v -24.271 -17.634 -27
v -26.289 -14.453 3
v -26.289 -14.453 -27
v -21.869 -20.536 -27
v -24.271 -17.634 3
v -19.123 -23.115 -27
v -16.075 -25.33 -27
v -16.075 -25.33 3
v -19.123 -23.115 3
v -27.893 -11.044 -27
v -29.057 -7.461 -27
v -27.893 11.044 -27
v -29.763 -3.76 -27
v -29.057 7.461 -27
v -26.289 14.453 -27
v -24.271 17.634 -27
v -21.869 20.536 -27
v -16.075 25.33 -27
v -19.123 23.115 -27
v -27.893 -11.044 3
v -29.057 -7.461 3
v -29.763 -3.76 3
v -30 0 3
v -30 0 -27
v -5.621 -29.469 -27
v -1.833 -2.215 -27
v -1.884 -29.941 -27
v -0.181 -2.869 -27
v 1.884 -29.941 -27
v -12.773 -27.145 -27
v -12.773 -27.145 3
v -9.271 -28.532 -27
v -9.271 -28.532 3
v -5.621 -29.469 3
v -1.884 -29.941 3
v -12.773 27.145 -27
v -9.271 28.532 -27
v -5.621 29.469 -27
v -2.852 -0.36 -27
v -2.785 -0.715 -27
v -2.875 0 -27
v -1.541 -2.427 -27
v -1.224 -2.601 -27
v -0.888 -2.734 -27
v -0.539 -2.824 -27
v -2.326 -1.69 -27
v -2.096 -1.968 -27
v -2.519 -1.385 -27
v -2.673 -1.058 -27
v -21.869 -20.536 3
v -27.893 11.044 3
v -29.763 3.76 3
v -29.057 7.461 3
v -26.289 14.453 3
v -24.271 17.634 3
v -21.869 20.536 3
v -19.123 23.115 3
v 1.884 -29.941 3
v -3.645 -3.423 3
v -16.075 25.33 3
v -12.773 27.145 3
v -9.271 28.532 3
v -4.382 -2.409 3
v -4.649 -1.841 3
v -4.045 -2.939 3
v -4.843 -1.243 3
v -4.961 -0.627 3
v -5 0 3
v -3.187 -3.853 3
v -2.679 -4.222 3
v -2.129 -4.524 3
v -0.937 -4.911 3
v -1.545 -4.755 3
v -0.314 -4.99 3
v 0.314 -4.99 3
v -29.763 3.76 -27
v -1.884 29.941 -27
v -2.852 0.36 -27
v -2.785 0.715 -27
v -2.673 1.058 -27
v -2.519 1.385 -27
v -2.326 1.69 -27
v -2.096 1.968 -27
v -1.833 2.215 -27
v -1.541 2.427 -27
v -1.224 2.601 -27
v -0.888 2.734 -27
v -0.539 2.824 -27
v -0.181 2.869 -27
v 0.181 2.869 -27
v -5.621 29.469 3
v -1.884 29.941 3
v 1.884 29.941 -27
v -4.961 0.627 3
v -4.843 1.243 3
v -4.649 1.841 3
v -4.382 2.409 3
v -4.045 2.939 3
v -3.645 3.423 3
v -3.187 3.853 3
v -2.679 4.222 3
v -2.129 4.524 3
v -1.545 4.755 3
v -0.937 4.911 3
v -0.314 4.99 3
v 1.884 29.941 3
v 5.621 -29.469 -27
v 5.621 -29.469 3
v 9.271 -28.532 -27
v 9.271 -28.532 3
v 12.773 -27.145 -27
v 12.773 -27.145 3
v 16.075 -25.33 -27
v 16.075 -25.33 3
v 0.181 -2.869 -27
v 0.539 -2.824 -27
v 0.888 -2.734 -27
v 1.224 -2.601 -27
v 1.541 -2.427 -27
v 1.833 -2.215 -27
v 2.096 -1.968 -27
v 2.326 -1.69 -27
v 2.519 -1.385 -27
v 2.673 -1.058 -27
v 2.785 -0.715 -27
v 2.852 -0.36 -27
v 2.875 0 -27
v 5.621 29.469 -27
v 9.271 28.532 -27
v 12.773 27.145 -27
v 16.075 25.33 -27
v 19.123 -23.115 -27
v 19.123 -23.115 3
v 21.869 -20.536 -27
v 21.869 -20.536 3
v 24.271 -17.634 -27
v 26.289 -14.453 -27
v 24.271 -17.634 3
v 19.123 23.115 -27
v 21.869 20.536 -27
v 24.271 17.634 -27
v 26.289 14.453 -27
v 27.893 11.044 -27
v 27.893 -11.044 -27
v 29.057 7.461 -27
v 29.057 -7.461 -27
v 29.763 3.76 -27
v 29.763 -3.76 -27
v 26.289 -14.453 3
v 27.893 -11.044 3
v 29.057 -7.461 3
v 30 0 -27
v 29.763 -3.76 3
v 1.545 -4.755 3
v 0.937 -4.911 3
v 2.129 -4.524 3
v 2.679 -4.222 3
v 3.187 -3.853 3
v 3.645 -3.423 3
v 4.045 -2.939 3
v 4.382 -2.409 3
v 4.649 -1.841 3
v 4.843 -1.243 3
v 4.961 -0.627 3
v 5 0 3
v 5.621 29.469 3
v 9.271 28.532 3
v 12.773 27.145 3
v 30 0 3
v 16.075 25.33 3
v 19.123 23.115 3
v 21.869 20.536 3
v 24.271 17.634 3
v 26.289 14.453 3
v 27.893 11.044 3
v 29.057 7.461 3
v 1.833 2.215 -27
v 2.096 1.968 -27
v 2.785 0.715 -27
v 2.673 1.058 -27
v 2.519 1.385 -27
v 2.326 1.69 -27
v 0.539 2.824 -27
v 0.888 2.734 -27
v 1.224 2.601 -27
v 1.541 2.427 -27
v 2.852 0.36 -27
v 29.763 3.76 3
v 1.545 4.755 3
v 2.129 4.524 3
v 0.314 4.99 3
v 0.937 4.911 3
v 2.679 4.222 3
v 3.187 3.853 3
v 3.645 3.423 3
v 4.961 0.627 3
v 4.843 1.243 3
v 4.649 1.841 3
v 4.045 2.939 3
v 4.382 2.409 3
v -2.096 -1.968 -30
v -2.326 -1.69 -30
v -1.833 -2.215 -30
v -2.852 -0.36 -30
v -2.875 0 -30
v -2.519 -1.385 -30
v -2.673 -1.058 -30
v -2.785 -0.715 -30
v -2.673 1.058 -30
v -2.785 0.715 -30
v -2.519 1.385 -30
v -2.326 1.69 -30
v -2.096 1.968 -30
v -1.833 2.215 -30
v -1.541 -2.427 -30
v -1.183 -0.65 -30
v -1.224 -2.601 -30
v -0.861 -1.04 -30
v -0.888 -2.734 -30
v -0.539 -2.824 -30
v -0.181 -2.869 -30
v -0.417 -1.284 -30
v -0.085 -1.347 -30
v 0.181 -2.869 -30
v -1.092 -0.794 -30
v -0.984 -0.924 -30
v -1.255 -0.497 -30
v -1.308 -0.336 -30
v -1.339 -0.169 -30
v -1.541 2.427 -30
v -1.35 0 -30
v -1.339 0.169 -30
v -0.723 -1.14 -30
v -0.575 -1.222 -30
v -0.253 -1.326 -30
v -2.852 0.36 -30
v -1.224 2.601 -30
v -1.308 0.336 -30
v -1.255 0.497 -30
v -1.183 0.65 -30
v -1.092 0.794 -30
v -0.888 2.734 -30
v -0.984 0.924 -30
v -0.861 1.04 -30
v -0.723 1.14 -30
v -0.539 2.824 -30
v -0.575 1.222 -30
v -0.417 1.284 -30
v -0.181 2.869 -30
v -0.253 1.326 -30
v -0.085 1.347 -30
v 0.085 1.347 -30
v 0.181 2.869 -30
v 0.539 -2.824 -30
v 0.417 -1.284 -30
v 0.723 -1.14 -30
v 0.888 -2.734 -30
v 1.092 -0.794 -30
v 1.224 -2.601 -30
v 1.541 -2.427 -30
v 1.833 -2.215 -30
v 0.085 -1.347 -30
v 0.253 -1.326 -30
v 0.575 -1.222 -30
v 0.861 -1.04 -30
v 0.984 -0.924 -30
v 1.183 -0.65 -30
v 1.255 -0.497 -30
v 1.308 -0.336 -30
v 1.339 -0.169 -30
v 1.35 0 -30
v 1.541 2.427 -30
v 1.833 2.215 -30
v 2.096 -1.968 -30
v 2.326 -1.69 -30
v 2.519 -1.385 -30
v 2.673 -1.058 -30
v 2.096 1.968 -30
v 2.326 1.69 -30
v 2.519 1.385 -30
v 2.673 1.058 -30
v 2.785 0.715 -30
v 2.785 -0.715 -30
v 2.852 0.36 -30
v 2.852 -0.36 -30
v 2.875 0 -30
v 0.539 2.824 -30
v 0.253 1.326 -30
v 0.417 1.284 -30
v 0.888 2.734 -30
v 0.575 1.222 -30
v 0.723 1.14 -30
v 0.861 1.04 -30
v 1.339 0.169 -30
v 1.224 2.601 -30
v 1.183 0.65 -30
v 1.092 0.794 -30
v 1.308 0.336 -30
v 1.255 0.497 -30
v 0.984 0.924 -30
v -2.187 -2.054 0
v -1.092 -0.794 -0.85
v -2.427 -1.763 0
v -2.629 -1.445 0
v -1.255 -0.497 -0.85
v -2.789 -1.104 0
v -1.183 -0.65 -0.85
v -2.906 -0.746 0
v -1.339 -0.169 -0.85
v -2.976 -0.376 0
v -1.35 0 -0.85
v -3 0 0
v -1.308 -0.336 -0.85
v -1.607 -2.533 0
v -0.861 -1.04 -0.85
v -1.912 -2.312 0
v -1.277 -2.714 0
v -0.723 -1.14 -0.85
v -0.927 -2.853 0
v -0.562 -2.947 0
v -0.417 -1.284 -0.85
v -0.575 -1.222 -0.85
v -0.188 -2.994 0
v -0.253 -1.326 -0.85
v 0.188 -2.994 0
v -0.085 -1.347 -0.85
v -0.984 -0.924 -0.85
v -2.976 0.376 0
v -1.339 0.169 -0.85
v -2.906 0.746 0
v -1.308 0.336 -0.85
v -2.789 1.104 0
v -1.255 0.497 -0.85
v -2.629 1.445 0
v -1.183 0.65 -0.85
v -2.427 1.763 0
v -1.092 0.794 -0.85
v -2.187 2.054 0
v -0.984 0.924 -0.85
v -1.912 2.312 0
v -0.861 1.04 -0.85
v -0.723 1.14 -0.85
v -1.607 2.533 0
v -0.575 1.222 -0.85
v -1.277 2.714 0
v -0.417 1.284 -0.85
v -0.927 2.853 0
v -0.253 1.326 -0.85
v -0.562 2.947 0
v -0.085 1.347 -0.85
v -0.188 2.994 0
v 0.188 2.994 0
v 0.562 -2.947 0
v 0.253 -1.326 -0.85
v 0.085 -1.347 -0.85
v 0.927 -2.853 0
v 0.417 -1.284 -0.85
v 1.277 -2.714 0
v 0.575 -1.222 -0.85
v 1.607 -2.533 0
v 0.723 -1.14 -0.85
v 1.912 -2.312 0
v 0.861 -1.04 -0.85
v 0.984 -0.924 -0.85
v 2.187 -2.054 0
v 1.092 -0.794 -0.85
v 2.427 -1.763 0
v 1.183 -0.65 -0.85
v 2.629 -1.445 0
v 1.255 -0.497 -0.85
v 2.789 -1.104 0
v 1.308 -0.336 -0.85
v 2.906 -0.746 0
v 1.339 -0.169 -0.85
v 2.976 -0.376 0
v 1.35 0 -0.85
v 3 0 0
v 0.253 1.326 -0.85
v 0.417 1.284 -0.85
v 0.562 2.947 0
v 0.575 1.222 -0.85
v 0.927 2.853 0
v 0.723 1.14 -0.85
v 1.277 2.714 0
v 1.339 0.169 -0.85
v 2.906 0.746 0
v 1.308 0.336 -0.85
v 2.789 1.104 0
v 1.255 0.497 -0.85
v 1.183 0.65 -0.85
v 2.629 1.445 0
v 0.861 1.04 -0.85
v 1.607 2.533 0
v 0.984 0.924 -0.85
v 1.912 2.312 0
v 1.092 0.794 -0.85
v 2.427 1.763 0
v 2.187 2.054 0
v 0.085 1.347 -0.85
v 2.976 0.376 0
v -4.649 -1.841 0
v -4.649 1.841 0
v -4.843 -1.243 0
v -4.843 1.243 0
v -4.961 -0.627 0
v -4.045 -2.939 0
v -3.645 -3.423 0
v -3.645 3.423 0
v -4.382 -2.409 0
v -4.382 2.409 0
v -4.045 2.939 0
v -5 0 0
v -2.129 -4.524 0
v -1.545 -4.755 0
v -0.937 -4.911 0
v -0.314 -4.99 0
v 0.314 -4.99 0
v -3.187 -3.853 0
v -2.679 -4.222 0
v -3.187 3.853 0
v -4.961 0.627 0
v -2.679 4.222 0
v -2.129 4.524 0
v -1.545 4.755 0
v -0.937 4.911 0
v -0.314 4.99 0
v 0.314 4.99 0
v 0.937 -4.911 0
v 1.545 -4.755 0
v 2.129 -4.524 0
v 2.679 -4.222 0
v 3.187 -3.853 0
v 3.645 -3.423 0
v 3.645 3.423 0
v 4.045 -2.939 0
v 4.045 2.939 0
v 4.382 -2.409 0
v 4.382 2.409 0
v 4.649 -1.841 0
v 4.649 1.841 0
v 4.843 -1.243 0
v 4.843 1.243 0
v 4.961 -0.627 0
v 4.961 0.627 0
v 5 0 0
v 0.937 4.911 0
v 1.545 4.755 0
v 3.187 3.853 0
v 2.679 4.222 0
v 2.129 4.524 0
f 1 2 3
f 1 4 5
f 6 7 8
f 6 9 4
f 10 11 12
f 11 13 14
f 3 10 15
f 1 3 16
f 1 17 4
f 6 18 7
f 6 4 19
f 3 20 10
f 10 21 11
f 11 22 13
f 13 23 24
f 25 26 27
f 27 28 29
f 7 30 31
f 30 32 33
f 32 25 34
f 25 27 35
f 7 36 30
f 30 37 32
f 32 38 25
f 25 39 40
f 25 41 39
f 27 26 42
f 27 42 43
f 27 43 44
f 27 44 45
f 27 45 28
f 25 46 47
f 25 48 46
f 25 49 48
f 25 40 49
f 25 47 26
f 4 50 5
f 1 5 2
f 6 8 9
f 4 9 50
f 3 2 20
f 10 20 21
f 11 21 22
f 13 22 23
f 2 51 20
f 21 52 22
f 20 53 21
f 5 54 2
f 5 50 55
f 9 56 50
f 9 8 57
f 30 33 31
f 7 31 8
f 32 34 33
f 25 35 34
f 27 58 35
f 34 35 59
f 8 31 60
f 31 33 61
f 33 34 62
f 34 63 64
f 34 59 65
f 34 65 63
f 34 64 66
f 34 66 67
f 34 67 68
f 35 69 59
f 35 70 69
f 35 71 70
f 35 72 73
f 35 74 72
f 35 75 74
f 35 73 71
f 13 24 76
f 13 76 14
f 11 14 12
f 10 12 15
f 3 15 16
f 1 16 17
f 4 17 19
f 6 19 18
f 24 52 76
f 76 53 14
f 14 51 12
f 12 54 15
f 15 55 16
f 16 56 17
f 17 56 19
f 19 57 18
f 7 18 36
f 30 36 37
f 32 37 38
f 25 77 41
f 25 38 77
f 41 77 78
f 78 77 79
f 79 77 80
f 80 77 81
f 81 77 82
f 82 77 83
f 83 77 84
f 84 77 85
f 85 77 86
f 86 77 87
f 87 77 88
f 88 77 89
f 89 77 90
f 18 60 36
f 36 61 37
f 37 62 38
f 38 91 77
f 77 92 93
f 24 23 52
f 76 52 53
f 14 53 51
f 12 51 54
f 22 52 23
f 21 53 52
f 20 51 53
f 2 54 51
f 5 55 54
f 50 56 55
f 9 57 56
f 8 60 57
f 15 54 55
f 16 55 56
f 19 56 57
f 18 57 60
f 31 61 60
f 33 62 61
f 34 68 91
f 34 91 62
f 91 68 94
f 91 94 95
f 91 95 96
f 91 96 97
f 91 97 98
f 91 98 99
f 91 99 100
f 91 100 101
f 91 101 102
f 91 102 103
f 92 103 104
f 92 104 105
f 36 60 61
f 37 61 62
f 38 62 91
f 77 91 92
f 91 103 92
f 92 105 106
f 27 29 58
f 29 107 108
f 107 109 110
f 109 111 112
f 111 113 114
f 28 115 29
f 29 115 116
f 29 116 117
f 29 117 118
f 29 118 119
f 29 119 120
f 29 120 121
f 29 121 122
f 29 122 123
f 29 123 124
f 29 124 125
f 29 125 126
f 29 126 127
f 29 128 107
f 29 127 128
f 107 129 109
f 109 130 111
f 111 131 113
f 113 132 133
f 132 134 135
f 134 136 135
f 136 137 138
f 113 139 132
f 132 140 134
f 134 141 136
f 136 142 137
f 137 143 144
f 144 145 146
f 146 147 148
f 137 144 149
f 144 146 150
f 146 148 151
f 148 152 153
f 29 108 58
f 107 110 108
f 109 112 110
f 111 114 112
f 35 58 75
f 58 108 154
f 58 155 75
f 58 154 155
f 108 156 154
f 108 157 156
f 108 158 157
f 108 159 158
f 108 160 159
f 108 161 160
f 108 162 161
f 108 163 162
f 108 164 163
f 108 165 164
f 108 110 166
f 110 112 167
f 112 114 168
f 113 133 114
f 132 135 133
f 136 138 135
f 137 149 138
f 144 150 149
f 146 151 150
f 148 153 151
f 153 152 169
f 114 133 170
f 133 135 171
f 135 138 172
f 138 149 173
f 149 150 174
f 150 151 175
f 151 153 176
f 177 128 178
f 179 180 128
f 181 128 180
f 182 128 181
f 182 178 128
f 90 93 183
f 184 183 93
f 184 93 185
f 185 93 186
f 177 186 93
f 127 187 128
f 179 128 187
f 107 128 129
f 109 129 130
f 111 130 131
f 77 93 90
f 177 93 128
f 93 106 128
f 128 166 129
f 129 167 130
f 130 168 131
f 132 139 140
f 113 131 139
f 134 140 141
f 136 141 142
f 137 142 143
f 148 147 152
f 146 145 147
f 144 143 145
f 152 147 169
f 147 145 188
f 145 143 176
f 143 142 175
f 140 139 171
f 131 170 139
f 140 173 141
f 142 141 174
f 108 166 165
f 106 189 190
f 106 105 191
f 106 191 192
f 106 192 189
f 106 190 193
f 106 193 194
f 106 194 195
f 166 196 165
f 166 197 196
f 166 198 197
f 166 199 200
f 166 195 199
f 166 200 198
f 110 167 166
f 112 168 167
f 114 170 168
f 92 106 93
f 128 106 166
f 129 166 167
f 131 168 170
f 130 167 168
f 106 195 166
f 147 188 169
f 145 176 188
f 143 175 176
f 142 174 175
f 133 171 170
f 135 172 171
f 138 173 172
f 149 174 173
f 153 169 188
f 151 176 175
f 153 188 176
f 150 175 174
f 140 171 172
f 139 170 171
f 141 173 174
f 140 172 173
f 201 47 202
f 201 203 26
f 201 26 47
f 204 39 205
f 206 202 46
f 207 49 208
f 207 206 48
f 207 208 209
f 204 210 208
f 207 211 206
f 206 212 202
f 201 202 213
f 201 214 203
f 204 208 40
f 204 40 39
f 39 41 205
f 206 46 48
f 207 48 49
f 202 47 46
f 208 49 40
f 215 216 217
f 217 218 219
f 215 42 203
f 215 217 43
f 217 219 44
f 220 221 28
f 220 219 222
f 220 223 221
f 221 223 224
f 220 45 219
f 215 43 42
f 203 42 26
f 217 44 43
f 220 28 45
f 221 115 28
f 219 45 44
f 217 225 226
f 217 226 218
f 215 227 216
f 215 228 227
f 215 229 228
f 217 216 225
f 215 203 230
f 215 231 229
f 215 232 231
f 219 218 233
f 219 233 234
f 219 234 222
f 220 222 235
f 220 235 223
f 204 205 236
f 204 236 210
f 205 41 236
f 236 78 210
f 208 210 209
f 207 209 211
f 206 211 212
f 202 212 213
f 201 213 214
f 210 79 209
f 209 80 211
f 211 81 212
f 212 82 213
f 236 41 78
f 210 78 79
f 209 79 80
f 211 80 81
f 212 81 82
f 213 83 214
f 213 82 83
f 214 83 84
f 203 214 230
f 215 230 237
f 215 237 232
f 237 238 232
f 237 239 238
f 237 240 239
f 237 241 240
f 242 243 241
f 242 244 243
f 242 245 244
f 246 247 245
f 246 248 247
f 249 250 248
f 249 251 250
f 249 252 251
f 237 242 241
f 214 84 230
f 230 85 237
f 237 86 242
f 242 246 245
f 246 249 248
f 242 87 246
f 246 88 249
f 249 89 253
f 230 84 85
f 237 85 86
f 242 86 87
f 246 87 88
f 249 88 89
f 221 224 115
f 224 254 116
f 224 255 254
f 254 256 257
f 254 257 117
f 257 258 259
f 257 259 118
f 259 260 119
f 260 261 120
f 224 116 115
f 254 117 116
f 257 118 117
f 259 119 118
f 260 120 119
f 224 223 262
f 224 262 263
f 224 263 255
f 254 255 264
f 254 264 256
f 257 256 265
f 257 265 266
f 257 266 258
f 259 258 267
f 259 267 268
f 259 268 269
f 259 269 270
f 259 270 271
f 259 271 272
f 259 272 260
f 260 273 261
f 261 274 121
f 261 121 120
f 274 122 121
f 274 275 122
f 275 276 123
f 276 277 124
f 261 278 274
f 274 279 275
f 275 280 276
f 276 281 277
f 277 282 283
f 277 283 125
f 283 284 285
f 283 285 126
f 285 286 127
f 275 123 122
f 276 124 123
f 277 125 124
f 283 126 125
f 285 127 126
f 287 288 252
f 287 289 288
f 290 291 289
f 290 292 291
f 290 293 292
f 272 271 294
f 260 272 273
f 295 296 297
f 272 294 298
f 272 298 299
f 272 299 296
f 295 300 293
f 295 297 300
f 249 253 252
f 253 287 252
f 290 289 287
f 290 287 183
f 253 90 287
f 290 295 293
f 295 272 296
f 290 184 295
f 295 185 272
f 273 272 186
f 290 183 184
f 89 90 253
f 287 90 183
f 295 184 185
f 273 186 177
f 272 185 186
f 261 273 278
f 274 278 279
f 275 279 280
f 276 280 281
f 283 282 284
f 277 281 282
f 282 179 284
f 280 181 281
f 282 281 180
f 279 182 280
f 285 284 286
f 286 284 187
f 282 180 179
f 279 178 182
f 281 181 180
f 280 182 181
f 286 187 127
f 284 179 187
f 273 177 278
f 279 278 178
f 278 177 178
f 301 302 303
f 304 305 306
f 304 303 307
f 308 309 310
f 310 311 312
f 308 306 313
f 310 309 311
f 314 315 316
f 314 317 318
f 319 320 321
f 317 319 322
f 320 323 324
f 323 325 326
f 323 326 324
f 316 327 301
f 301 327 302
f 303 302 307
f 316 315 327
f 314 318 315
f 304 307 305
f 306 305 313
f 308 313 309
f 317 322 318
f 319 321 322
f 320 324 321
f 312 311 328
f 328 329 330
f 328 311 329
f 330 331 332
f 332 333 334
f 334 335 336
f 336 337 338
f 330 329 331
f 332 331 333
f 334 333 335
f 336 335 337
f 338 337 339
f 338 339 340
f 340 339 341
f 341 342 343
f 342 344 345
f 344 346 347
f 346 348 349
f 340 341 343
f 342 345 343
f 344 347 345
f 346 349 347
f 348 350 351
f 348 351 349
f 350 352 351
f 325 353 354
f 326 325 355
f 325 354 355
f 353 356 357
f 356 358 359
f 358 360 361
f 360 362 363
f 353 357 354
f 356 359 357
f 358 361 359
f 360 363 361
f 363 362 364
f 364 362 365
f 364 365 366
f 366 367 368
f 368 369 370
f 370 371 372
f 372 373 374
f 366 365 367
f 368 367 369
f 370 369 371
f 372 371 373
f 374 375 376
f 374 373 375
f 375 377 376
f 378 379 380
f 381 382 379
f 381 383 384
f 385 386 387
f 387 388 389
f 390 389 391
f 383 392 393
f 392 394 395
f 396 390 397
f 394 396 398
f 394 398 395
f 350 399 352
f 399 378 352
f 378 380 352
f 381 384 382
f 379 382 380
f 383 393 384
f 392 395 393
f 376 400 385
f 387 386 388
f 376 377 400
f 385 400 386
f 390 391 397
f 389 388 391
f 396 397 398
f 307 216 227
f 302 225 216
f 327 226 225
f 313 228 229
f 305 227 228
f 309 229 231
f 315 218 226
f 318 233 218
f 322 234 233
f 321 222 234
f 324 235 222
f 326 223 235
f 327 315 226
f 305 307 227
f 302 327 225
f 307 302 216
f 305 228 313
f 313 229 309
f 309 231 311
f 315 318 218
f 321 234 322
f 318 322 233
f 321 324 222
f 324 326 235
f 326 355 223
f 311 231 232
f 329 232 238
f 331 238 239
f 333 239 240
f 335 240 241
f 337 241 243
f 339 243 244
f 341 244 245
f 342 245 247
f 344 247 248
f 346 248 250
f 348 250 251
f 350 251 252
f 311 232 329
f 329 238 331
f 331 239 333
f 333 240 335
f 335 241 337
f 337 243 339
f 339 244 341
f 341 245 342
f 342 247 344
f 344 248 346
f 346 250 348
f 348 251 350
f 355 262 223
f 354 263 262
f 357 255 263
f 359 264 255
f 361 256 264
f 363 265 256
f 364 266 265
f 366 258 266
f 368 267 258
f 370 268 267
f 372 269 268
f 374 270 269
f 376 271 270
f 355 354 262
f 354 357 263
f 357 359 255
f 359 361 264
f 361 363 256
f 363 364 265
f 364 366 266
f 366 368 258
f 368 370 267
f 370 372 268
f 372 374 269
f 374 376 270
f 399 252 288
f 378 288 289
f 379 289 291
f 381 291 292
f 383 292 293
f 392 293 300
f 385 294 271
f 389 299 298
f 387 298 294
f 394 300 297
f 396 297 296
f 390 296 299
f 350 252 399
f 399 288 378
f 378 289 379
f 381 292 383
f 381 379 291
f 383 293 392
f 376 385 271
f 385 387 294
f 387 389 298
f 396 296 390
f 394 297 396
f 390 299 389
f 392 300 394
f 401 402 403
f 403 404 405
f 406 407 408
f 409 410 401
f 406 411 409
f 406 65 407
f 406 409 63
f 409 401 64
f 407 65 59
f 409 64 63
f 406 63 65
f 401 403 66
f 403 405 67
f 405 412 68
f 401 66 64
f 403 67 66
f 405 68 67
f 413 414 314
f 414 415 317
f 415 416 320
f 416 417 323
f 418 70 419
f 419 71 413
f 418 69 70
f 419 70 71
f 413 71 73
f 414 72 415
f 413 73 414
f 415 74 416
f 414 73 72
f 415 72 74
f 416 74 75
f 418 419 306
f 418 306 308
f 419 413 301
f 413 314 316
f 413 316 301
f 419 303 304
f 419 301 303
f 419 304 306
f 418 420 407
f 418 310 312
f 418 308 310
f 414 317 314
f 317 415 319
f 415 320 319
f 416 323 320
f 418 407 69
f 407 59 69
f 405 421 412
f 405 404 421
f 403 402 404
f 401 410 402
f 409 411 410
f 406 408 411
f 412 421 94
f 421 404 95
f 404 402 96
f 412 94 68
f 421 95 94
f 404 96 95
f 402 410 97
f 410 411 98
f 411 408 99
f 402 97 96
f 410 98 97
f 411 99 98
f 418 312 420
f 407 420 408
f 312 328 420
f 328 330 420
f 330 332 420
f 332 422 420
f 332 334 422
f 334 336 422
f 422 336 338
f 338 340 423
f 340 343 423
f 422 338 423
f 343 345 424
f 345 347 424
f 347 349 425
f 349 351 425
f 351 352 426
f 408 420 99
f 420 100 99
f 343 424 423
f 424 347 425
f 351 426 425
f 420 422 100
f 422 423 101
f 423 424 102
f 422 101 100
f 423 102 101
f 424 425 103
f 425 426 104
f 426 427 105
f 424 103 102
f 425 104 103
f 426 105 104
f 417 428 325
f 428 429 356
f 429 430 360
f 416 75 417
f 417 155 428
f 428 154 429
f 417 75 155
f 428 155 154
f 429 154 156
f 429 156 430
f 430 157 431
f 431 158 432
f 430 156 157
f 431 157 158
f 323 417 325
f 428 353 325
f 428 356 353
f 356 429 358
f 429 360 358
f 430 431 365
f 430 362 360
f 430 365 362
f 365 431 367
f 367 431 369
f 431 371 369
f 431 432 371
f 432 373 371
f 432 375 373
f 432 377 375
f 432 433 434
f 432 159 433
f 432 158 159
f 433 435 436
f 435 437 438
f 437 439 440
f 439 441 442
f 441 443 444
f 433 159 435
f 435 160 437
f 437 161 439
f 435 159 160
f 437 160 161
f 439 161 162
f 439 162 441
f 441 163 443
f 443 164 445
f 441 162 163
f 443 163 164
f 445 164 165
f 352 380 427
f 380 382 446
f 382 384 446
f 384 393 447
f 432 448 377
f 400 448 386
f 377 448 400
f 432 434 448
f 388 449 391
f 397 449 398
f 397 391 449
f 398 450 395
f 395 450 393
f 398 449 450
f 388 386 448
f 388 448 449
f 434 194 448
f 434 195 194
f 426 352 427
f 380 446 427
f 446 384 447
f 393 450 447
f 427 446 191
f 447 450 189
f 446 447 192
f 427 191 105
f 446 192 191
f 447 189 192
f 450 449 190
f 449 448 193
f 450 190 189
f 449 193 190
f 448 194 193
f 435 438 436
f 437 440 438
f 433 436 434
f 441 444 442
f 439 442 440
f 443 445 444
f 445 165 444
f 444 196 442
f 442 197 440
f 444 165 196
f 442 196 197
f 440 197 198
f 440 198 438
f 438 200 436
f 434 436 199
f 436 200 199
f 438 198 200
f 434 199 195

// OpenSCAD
$fn = 50;


difference() {
	union() {
		translate(v = [0, 0, -27.0000000000]) {
			cylinder(h = 30, r = 30.0000000000);
		}
		#translate(v = [0, 0, -30.0000000000]) {
			cylinder(h = 30, r = 2.8750000000);
		}
	}
	union() {
		translate(v = [0, 0, 0]) {
			rotate(a = [0, 0, 0]) {
				difference() {
					union() {
						translate(v = [0, 0, -30.0000000000]) {
							cylinder(h = 30, r = 1.0000000000);
						}
						translate(v = [0, 0, -0.8500000000]) {
							cylinder(h = 0.8500000000, r1 = 1.3500000000, r2 = 3.0000000000);
						}
						translate(v = [0, 0, -30.0000000000]) {
							cylinder(h = 30, r = 1.3500000000);
						}
						translate(v = [0, 0, -30.0000000000]) {
							cylinder(h = 30, r = 1.0000000000);
						}
					}
					union();
				}
			}
		}
		#cylinder(h = 3, r = 5.0000000000);
	}
}
